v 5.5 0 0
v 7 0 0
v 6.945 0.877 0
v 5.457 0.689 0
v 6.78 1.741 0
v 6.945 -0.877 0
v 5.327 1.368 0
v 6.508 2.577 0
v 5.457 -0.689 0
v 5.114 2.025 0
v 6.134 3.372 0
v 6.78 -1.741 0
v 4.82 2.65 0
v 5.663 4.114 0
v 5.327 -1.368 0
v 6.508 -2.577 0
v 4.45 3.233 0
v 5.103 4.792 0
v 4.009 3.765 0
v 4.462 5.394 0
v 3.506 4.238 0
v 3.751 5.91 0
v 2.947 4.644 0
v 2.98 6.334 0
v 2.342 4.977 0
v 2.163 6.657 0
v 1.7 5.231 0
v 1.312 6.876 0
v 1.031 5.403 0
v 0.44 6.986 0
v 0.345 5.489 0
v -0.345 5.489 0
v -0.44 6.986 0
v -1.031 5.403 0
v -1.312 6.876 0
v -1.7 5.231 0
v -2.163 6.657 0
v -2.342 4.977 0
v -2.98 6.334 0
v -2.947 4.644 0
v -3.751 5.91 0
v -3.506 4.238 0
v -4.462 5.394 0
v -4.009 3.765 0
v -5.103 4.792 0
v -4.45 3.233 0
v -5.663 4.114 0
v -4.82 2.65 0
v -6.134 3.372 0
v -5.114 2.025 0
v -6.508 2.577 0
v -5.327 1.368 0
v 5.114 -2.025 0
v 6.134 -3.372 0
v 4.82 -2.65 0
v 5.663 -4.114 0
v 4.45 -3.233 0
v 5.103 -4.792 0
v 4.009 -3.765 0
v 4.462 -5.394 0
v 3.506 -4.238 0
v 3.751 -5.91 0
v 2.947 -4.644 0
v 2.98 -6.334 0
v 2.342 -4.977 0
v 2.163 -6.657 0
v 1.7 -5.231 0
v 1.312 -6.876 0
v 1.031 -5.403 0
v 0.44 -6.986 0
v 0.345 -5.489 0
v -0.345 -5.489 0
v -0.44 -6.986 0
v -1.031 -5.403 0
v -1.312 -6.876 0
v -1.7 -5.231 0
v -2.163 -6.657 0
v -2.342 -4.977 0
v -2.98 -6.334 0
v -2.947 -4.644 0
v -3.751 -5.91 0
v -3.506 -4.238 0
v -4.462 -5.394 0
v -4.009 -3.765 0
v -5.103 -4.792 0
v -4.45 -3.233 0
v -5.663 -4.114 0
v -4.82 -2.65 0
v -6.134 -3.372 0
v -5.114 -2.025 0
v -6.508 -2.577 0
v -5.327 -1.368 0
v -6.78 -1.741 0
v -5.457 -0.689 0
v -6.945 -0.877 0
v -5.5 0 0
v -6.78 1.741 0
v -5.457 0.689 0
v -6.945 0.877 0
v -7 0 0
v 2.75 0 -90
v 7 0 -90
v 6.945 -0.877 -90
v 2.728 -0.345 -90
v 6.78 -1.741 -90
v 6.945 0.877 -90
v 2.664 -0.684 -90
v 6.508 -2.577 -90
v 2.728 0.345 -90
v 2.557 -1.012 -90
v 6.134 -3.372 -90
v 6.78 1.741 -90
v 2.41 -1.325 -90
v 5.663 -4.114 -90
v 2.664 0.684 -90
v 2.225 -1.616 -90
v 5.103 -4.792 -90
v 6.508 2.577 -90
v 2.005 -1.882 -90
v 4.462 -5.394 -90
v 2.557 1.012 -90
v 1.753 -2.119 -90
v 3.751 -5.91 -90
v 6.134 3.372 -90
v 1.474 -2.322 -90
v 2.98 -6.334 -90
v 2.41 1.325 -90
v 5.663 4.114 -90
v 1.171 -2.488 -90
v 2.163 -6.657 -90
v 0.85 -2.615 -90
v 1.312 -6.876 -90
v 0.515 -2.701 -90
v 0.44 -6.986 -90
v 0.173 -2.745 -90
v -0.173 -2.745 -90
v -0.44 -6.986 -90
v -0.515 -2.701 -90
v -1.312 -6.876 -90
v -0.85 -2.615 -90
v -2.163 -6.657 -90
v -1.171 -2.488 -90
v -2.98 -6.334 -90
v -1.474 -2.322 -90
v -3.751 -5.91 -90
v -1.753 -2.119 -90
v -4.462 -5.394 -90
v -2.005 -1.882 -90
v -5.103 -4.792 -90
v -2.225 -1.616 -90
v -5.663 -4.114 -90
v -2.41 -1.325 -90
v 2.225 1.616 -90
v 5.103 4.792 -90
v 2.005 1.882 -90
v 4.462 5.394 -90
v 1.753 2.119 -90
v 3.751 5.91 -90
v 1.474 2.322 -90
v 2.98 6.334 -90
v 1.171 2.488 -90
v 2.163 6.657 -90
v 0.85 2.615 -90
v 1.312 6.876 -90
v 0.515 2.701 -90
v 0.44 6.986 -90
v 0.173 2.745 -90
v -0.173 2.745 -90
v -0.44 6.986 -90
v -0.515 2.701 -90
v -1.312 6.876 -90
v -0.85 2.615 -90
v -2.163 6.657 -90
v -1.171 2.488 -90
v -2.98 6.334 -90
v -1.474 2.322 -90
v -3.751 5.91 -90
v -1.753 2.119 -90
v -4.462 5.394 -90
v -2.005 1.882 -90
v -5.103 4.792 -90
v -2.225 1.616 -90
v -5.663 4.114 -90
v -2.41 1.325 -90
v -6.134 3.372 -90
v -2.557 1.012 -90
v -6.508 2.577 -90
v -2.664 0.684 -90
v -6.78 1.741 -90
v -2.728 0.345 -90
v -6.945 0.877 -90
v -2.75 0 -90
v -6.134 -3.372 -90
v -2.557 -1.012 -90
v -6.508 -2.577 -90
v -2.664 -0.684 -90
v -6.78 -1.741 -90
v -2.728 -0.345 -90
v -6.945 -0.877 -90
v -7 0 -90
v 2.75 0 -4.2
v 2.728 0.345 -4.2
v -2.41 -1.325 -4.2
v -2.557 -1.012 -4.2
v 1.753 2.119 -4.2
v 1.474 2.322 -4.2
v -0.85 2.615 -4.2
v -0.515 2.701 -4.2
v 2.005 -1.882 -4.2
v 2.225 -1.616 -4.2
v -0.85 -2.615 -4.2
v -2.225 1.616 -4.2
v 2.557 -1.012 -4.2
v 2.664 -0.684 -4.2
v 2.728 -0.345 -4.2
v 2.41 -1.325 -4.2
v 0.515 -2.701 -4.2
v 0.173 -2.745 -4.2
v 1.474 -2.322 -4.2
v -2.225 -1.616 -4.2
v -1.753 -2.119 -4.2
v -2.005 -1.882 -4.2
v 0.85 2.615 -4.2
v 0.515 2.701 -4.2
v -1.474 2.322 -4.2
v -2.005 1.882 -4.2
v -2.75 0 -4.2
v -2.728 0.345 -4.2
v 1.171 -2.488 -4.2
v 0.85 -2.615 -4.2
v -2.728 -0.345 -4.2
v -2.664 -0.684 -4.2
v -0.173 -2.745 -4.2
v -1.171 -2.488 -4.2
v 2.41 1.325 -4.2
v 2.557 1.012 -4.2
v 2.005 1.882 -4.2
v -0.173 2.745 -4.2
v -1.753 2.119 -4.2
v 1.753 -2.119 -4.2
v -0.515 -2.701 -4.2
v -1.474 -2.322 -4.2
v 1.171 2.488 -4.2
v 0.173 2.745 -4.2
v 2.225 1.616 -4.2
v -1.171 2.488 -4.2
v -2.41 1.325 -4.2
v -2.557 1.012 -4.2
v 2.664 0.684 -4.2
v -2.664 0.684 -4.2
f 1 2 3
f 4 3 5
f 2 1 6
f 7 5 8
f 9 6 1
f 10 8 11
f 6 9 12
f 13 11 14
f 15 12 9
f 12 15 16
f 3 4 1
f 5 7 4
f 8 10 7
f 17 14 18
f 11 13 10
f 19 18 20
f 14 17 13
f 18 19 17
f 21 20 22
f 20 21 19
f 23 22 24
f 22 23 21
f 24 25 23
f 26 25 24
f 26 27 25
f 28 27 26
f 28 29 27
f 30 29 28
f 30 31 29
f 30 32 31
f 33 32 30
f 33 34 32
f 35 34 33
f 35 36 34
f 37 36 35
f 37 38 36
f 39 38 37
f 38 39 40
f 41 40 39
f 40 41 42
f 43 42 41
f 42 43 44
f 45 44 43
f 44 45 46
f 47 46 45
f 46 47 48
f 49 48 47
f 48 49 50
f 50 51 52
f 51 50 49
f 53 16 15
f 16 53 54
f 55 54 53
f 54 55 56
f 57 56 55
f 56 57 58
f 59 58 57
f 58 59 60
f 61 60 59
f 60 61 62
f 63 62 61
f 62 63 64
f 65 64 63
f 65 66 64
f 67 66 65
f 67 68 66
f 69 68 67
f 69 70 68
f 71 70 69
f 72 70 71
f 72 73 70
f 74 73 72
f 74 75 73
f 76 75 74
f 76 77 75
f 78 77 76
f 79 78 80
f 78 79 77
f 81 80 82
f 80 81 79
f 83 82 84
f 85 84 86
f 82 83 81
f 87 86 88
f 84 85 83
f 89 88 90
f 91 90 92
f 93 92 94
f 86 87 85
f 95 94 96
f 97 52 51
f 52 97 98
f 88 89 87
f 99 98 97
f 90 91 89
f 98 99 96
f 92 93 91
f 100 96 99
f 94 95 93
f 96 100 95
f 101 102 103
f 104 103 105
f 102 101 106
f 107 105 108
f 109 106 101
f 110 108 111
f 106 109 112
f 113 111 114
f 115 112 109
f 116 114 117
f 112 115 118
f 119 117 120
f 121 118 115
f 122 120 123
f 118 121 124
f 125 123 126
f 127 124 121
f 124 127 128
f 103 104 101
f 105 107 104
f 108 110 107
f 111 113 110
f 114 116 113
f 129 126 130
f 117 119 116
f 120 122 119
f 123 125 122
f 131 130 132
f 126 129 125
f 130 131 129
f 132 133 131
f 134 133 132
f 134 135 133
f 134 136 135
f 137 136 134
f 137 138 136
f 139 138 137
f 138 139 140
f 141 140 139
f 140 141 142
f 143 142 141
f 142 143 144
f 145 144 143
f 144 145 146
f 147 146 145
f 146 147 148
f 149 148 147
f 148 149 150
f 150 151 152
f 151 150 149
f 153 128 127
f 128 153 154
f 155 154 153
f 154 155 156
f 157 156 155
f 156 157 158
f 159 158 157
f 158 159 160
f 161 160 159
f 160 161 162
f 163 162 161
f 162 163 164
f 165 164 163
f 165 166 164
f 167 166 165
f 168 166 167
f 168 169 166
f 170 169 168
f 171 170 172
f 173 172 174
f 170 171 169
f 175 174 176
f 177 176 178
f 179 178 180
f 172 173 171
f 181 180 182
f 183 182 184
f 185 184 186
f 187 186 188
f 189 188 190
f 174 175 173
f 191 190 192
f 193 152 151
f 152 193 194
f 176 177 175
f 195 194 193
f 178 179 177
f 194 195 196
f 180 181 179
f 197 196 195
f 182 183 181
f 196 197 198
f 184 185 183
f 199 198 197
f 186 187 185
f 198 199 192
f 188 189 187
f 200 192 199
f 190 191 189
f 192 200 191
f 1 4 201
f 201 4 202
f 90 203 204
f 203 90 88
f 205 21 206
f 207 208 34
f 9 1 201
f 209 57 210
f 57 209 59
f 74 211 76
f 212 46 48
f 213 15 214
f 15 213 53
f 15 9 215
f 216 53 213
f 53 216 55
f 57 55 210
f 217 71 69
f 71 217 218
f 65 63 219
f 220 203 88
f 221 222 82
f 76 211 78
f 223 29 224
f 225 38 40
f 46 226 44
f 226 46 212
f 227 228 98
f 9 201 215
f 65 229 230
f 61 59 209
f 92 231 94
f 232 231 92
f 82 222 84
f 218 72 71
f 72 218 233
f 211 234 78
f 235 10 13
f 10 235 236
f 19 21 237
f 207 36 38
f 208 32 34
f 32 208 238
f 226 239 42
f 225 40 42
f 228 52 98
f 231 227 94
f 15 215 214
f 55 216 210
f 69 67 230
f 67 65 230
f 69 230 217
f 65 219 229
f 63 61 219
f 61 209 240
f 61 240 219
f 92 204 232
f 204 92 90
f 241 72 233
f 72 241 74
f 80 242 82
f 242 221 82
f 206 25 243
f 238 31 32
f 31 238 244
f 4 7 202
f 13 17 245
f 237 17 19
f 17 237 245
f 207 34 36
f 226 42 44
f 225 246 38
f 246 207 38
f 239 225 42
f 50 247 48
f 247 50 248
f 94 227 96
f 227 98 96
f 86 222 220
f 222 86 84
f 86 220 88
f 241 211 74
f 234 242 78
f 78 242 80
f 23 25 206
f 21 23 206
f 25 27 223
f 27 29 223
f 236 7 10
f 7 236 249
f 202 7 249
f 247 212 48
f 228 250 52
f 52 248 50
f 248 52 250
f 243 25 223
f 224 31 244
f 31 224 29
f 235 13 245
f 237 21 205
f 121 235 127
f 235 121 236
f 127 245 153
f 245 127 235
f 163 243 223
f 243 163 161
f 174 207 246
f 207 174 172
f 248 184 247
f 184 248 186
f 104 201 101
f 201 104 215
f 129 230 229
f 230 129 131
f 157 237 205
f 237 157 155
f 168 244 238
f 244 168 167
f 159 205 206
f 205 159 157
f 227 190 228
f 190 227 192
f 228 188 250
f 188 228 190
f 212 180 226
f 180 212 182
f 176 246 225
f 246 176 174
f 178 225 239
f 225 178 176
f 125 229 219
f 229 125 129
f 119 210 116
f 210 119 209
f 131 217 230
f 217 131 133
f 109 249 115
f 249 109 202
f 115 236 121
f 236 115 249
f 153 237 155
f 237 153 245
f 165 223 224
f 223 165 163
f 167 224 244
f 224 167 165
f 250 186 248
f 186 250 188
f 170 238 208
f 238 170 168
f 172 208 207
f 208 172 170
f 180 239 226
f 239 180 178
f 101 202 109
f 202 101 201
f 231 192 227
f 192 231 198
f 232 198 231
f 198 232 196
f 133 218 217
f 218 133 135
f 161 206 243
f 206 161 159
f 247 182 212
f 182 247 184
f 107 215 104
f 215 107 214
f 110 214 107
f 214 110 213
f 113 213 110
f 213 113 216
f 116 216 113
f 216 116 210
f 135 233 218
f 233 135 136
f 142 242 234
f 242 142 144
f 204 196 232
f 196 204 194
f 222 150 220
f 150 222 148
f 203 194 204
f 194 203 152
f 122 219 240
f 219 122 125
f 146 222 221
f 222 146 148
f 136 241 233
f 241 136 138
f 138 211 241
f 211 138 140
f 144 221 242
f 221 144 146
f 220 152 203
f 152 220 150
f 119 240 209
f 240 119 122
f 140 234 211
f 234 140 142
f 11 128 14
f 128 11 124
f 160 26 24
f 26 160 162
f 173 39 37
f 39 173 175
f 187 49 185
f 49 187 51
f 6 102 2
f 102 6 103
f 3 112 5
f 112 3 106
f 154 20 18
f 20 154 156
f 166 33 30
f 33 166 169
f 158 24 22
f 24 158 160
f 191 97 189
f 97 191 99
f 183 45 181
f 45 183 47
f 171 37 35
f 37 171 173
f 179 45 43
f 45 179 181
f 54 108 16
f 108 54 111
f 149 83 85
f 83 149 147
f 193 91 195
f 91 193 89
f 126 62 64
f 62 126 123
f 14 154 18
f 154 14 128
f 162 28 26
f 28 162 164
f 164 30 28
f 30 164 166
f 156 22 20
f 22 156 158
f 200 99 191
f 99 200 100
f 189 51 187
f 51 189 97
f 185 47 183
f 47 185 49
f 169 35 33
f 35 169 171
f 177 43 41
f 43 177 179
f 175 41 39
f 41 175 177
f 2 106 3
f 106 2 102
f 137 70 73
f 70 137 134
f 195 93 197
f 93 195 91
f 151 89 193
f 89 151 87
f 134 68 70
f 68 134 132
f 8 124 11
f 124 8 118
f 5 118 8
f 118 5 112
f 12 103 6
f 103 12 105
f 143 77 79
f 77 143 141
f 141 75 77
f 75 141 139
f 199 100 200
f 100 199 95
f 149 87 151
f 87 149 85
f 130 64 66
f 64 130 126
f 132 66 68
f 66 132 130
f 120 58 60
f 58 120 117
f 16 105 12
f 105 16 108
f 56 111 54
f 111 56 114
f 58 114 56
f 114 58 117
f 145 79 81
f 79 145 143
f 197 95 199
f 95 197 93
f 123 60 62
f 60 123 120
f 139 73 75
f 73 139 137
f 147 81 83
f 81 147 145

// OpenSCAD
$fn = 50;


difference() {
	union() {
		translate(v = [0, 0, -90.0000000000]) {
			cylinder(h = 90, r = 7.0000000000);
		}
		cylinder(h = 0, r = 16.0000000000);
	}
	union() {
		translate(v = [0, 0, 0]) {
			rotate(a = [0, 0, 0]) {
				difference() {
					union() {
						#translate(v = [0, 0, -90.0000000000]) {
							cylinder(h = 90, r = 2.2500000000);
						}
						#translate(v = [0, 0, -4.2000000000]) {
							cylinder(h = 4.2000000000, r = 7.0000000000, r1 = 2.7500000000, r2 = 5.5000000000);
						}
						#translate(v = [0, 0, -90.0000000000]) {
							cylinder(h = 90, r = 2.7500000000);
						}
						#translate(v = [0, 0, -90.0000000000]) {
							cylinder(h = 90, r = 2.2500000000);
						}
					}
					union();
				}
			}
		}
	}
}
